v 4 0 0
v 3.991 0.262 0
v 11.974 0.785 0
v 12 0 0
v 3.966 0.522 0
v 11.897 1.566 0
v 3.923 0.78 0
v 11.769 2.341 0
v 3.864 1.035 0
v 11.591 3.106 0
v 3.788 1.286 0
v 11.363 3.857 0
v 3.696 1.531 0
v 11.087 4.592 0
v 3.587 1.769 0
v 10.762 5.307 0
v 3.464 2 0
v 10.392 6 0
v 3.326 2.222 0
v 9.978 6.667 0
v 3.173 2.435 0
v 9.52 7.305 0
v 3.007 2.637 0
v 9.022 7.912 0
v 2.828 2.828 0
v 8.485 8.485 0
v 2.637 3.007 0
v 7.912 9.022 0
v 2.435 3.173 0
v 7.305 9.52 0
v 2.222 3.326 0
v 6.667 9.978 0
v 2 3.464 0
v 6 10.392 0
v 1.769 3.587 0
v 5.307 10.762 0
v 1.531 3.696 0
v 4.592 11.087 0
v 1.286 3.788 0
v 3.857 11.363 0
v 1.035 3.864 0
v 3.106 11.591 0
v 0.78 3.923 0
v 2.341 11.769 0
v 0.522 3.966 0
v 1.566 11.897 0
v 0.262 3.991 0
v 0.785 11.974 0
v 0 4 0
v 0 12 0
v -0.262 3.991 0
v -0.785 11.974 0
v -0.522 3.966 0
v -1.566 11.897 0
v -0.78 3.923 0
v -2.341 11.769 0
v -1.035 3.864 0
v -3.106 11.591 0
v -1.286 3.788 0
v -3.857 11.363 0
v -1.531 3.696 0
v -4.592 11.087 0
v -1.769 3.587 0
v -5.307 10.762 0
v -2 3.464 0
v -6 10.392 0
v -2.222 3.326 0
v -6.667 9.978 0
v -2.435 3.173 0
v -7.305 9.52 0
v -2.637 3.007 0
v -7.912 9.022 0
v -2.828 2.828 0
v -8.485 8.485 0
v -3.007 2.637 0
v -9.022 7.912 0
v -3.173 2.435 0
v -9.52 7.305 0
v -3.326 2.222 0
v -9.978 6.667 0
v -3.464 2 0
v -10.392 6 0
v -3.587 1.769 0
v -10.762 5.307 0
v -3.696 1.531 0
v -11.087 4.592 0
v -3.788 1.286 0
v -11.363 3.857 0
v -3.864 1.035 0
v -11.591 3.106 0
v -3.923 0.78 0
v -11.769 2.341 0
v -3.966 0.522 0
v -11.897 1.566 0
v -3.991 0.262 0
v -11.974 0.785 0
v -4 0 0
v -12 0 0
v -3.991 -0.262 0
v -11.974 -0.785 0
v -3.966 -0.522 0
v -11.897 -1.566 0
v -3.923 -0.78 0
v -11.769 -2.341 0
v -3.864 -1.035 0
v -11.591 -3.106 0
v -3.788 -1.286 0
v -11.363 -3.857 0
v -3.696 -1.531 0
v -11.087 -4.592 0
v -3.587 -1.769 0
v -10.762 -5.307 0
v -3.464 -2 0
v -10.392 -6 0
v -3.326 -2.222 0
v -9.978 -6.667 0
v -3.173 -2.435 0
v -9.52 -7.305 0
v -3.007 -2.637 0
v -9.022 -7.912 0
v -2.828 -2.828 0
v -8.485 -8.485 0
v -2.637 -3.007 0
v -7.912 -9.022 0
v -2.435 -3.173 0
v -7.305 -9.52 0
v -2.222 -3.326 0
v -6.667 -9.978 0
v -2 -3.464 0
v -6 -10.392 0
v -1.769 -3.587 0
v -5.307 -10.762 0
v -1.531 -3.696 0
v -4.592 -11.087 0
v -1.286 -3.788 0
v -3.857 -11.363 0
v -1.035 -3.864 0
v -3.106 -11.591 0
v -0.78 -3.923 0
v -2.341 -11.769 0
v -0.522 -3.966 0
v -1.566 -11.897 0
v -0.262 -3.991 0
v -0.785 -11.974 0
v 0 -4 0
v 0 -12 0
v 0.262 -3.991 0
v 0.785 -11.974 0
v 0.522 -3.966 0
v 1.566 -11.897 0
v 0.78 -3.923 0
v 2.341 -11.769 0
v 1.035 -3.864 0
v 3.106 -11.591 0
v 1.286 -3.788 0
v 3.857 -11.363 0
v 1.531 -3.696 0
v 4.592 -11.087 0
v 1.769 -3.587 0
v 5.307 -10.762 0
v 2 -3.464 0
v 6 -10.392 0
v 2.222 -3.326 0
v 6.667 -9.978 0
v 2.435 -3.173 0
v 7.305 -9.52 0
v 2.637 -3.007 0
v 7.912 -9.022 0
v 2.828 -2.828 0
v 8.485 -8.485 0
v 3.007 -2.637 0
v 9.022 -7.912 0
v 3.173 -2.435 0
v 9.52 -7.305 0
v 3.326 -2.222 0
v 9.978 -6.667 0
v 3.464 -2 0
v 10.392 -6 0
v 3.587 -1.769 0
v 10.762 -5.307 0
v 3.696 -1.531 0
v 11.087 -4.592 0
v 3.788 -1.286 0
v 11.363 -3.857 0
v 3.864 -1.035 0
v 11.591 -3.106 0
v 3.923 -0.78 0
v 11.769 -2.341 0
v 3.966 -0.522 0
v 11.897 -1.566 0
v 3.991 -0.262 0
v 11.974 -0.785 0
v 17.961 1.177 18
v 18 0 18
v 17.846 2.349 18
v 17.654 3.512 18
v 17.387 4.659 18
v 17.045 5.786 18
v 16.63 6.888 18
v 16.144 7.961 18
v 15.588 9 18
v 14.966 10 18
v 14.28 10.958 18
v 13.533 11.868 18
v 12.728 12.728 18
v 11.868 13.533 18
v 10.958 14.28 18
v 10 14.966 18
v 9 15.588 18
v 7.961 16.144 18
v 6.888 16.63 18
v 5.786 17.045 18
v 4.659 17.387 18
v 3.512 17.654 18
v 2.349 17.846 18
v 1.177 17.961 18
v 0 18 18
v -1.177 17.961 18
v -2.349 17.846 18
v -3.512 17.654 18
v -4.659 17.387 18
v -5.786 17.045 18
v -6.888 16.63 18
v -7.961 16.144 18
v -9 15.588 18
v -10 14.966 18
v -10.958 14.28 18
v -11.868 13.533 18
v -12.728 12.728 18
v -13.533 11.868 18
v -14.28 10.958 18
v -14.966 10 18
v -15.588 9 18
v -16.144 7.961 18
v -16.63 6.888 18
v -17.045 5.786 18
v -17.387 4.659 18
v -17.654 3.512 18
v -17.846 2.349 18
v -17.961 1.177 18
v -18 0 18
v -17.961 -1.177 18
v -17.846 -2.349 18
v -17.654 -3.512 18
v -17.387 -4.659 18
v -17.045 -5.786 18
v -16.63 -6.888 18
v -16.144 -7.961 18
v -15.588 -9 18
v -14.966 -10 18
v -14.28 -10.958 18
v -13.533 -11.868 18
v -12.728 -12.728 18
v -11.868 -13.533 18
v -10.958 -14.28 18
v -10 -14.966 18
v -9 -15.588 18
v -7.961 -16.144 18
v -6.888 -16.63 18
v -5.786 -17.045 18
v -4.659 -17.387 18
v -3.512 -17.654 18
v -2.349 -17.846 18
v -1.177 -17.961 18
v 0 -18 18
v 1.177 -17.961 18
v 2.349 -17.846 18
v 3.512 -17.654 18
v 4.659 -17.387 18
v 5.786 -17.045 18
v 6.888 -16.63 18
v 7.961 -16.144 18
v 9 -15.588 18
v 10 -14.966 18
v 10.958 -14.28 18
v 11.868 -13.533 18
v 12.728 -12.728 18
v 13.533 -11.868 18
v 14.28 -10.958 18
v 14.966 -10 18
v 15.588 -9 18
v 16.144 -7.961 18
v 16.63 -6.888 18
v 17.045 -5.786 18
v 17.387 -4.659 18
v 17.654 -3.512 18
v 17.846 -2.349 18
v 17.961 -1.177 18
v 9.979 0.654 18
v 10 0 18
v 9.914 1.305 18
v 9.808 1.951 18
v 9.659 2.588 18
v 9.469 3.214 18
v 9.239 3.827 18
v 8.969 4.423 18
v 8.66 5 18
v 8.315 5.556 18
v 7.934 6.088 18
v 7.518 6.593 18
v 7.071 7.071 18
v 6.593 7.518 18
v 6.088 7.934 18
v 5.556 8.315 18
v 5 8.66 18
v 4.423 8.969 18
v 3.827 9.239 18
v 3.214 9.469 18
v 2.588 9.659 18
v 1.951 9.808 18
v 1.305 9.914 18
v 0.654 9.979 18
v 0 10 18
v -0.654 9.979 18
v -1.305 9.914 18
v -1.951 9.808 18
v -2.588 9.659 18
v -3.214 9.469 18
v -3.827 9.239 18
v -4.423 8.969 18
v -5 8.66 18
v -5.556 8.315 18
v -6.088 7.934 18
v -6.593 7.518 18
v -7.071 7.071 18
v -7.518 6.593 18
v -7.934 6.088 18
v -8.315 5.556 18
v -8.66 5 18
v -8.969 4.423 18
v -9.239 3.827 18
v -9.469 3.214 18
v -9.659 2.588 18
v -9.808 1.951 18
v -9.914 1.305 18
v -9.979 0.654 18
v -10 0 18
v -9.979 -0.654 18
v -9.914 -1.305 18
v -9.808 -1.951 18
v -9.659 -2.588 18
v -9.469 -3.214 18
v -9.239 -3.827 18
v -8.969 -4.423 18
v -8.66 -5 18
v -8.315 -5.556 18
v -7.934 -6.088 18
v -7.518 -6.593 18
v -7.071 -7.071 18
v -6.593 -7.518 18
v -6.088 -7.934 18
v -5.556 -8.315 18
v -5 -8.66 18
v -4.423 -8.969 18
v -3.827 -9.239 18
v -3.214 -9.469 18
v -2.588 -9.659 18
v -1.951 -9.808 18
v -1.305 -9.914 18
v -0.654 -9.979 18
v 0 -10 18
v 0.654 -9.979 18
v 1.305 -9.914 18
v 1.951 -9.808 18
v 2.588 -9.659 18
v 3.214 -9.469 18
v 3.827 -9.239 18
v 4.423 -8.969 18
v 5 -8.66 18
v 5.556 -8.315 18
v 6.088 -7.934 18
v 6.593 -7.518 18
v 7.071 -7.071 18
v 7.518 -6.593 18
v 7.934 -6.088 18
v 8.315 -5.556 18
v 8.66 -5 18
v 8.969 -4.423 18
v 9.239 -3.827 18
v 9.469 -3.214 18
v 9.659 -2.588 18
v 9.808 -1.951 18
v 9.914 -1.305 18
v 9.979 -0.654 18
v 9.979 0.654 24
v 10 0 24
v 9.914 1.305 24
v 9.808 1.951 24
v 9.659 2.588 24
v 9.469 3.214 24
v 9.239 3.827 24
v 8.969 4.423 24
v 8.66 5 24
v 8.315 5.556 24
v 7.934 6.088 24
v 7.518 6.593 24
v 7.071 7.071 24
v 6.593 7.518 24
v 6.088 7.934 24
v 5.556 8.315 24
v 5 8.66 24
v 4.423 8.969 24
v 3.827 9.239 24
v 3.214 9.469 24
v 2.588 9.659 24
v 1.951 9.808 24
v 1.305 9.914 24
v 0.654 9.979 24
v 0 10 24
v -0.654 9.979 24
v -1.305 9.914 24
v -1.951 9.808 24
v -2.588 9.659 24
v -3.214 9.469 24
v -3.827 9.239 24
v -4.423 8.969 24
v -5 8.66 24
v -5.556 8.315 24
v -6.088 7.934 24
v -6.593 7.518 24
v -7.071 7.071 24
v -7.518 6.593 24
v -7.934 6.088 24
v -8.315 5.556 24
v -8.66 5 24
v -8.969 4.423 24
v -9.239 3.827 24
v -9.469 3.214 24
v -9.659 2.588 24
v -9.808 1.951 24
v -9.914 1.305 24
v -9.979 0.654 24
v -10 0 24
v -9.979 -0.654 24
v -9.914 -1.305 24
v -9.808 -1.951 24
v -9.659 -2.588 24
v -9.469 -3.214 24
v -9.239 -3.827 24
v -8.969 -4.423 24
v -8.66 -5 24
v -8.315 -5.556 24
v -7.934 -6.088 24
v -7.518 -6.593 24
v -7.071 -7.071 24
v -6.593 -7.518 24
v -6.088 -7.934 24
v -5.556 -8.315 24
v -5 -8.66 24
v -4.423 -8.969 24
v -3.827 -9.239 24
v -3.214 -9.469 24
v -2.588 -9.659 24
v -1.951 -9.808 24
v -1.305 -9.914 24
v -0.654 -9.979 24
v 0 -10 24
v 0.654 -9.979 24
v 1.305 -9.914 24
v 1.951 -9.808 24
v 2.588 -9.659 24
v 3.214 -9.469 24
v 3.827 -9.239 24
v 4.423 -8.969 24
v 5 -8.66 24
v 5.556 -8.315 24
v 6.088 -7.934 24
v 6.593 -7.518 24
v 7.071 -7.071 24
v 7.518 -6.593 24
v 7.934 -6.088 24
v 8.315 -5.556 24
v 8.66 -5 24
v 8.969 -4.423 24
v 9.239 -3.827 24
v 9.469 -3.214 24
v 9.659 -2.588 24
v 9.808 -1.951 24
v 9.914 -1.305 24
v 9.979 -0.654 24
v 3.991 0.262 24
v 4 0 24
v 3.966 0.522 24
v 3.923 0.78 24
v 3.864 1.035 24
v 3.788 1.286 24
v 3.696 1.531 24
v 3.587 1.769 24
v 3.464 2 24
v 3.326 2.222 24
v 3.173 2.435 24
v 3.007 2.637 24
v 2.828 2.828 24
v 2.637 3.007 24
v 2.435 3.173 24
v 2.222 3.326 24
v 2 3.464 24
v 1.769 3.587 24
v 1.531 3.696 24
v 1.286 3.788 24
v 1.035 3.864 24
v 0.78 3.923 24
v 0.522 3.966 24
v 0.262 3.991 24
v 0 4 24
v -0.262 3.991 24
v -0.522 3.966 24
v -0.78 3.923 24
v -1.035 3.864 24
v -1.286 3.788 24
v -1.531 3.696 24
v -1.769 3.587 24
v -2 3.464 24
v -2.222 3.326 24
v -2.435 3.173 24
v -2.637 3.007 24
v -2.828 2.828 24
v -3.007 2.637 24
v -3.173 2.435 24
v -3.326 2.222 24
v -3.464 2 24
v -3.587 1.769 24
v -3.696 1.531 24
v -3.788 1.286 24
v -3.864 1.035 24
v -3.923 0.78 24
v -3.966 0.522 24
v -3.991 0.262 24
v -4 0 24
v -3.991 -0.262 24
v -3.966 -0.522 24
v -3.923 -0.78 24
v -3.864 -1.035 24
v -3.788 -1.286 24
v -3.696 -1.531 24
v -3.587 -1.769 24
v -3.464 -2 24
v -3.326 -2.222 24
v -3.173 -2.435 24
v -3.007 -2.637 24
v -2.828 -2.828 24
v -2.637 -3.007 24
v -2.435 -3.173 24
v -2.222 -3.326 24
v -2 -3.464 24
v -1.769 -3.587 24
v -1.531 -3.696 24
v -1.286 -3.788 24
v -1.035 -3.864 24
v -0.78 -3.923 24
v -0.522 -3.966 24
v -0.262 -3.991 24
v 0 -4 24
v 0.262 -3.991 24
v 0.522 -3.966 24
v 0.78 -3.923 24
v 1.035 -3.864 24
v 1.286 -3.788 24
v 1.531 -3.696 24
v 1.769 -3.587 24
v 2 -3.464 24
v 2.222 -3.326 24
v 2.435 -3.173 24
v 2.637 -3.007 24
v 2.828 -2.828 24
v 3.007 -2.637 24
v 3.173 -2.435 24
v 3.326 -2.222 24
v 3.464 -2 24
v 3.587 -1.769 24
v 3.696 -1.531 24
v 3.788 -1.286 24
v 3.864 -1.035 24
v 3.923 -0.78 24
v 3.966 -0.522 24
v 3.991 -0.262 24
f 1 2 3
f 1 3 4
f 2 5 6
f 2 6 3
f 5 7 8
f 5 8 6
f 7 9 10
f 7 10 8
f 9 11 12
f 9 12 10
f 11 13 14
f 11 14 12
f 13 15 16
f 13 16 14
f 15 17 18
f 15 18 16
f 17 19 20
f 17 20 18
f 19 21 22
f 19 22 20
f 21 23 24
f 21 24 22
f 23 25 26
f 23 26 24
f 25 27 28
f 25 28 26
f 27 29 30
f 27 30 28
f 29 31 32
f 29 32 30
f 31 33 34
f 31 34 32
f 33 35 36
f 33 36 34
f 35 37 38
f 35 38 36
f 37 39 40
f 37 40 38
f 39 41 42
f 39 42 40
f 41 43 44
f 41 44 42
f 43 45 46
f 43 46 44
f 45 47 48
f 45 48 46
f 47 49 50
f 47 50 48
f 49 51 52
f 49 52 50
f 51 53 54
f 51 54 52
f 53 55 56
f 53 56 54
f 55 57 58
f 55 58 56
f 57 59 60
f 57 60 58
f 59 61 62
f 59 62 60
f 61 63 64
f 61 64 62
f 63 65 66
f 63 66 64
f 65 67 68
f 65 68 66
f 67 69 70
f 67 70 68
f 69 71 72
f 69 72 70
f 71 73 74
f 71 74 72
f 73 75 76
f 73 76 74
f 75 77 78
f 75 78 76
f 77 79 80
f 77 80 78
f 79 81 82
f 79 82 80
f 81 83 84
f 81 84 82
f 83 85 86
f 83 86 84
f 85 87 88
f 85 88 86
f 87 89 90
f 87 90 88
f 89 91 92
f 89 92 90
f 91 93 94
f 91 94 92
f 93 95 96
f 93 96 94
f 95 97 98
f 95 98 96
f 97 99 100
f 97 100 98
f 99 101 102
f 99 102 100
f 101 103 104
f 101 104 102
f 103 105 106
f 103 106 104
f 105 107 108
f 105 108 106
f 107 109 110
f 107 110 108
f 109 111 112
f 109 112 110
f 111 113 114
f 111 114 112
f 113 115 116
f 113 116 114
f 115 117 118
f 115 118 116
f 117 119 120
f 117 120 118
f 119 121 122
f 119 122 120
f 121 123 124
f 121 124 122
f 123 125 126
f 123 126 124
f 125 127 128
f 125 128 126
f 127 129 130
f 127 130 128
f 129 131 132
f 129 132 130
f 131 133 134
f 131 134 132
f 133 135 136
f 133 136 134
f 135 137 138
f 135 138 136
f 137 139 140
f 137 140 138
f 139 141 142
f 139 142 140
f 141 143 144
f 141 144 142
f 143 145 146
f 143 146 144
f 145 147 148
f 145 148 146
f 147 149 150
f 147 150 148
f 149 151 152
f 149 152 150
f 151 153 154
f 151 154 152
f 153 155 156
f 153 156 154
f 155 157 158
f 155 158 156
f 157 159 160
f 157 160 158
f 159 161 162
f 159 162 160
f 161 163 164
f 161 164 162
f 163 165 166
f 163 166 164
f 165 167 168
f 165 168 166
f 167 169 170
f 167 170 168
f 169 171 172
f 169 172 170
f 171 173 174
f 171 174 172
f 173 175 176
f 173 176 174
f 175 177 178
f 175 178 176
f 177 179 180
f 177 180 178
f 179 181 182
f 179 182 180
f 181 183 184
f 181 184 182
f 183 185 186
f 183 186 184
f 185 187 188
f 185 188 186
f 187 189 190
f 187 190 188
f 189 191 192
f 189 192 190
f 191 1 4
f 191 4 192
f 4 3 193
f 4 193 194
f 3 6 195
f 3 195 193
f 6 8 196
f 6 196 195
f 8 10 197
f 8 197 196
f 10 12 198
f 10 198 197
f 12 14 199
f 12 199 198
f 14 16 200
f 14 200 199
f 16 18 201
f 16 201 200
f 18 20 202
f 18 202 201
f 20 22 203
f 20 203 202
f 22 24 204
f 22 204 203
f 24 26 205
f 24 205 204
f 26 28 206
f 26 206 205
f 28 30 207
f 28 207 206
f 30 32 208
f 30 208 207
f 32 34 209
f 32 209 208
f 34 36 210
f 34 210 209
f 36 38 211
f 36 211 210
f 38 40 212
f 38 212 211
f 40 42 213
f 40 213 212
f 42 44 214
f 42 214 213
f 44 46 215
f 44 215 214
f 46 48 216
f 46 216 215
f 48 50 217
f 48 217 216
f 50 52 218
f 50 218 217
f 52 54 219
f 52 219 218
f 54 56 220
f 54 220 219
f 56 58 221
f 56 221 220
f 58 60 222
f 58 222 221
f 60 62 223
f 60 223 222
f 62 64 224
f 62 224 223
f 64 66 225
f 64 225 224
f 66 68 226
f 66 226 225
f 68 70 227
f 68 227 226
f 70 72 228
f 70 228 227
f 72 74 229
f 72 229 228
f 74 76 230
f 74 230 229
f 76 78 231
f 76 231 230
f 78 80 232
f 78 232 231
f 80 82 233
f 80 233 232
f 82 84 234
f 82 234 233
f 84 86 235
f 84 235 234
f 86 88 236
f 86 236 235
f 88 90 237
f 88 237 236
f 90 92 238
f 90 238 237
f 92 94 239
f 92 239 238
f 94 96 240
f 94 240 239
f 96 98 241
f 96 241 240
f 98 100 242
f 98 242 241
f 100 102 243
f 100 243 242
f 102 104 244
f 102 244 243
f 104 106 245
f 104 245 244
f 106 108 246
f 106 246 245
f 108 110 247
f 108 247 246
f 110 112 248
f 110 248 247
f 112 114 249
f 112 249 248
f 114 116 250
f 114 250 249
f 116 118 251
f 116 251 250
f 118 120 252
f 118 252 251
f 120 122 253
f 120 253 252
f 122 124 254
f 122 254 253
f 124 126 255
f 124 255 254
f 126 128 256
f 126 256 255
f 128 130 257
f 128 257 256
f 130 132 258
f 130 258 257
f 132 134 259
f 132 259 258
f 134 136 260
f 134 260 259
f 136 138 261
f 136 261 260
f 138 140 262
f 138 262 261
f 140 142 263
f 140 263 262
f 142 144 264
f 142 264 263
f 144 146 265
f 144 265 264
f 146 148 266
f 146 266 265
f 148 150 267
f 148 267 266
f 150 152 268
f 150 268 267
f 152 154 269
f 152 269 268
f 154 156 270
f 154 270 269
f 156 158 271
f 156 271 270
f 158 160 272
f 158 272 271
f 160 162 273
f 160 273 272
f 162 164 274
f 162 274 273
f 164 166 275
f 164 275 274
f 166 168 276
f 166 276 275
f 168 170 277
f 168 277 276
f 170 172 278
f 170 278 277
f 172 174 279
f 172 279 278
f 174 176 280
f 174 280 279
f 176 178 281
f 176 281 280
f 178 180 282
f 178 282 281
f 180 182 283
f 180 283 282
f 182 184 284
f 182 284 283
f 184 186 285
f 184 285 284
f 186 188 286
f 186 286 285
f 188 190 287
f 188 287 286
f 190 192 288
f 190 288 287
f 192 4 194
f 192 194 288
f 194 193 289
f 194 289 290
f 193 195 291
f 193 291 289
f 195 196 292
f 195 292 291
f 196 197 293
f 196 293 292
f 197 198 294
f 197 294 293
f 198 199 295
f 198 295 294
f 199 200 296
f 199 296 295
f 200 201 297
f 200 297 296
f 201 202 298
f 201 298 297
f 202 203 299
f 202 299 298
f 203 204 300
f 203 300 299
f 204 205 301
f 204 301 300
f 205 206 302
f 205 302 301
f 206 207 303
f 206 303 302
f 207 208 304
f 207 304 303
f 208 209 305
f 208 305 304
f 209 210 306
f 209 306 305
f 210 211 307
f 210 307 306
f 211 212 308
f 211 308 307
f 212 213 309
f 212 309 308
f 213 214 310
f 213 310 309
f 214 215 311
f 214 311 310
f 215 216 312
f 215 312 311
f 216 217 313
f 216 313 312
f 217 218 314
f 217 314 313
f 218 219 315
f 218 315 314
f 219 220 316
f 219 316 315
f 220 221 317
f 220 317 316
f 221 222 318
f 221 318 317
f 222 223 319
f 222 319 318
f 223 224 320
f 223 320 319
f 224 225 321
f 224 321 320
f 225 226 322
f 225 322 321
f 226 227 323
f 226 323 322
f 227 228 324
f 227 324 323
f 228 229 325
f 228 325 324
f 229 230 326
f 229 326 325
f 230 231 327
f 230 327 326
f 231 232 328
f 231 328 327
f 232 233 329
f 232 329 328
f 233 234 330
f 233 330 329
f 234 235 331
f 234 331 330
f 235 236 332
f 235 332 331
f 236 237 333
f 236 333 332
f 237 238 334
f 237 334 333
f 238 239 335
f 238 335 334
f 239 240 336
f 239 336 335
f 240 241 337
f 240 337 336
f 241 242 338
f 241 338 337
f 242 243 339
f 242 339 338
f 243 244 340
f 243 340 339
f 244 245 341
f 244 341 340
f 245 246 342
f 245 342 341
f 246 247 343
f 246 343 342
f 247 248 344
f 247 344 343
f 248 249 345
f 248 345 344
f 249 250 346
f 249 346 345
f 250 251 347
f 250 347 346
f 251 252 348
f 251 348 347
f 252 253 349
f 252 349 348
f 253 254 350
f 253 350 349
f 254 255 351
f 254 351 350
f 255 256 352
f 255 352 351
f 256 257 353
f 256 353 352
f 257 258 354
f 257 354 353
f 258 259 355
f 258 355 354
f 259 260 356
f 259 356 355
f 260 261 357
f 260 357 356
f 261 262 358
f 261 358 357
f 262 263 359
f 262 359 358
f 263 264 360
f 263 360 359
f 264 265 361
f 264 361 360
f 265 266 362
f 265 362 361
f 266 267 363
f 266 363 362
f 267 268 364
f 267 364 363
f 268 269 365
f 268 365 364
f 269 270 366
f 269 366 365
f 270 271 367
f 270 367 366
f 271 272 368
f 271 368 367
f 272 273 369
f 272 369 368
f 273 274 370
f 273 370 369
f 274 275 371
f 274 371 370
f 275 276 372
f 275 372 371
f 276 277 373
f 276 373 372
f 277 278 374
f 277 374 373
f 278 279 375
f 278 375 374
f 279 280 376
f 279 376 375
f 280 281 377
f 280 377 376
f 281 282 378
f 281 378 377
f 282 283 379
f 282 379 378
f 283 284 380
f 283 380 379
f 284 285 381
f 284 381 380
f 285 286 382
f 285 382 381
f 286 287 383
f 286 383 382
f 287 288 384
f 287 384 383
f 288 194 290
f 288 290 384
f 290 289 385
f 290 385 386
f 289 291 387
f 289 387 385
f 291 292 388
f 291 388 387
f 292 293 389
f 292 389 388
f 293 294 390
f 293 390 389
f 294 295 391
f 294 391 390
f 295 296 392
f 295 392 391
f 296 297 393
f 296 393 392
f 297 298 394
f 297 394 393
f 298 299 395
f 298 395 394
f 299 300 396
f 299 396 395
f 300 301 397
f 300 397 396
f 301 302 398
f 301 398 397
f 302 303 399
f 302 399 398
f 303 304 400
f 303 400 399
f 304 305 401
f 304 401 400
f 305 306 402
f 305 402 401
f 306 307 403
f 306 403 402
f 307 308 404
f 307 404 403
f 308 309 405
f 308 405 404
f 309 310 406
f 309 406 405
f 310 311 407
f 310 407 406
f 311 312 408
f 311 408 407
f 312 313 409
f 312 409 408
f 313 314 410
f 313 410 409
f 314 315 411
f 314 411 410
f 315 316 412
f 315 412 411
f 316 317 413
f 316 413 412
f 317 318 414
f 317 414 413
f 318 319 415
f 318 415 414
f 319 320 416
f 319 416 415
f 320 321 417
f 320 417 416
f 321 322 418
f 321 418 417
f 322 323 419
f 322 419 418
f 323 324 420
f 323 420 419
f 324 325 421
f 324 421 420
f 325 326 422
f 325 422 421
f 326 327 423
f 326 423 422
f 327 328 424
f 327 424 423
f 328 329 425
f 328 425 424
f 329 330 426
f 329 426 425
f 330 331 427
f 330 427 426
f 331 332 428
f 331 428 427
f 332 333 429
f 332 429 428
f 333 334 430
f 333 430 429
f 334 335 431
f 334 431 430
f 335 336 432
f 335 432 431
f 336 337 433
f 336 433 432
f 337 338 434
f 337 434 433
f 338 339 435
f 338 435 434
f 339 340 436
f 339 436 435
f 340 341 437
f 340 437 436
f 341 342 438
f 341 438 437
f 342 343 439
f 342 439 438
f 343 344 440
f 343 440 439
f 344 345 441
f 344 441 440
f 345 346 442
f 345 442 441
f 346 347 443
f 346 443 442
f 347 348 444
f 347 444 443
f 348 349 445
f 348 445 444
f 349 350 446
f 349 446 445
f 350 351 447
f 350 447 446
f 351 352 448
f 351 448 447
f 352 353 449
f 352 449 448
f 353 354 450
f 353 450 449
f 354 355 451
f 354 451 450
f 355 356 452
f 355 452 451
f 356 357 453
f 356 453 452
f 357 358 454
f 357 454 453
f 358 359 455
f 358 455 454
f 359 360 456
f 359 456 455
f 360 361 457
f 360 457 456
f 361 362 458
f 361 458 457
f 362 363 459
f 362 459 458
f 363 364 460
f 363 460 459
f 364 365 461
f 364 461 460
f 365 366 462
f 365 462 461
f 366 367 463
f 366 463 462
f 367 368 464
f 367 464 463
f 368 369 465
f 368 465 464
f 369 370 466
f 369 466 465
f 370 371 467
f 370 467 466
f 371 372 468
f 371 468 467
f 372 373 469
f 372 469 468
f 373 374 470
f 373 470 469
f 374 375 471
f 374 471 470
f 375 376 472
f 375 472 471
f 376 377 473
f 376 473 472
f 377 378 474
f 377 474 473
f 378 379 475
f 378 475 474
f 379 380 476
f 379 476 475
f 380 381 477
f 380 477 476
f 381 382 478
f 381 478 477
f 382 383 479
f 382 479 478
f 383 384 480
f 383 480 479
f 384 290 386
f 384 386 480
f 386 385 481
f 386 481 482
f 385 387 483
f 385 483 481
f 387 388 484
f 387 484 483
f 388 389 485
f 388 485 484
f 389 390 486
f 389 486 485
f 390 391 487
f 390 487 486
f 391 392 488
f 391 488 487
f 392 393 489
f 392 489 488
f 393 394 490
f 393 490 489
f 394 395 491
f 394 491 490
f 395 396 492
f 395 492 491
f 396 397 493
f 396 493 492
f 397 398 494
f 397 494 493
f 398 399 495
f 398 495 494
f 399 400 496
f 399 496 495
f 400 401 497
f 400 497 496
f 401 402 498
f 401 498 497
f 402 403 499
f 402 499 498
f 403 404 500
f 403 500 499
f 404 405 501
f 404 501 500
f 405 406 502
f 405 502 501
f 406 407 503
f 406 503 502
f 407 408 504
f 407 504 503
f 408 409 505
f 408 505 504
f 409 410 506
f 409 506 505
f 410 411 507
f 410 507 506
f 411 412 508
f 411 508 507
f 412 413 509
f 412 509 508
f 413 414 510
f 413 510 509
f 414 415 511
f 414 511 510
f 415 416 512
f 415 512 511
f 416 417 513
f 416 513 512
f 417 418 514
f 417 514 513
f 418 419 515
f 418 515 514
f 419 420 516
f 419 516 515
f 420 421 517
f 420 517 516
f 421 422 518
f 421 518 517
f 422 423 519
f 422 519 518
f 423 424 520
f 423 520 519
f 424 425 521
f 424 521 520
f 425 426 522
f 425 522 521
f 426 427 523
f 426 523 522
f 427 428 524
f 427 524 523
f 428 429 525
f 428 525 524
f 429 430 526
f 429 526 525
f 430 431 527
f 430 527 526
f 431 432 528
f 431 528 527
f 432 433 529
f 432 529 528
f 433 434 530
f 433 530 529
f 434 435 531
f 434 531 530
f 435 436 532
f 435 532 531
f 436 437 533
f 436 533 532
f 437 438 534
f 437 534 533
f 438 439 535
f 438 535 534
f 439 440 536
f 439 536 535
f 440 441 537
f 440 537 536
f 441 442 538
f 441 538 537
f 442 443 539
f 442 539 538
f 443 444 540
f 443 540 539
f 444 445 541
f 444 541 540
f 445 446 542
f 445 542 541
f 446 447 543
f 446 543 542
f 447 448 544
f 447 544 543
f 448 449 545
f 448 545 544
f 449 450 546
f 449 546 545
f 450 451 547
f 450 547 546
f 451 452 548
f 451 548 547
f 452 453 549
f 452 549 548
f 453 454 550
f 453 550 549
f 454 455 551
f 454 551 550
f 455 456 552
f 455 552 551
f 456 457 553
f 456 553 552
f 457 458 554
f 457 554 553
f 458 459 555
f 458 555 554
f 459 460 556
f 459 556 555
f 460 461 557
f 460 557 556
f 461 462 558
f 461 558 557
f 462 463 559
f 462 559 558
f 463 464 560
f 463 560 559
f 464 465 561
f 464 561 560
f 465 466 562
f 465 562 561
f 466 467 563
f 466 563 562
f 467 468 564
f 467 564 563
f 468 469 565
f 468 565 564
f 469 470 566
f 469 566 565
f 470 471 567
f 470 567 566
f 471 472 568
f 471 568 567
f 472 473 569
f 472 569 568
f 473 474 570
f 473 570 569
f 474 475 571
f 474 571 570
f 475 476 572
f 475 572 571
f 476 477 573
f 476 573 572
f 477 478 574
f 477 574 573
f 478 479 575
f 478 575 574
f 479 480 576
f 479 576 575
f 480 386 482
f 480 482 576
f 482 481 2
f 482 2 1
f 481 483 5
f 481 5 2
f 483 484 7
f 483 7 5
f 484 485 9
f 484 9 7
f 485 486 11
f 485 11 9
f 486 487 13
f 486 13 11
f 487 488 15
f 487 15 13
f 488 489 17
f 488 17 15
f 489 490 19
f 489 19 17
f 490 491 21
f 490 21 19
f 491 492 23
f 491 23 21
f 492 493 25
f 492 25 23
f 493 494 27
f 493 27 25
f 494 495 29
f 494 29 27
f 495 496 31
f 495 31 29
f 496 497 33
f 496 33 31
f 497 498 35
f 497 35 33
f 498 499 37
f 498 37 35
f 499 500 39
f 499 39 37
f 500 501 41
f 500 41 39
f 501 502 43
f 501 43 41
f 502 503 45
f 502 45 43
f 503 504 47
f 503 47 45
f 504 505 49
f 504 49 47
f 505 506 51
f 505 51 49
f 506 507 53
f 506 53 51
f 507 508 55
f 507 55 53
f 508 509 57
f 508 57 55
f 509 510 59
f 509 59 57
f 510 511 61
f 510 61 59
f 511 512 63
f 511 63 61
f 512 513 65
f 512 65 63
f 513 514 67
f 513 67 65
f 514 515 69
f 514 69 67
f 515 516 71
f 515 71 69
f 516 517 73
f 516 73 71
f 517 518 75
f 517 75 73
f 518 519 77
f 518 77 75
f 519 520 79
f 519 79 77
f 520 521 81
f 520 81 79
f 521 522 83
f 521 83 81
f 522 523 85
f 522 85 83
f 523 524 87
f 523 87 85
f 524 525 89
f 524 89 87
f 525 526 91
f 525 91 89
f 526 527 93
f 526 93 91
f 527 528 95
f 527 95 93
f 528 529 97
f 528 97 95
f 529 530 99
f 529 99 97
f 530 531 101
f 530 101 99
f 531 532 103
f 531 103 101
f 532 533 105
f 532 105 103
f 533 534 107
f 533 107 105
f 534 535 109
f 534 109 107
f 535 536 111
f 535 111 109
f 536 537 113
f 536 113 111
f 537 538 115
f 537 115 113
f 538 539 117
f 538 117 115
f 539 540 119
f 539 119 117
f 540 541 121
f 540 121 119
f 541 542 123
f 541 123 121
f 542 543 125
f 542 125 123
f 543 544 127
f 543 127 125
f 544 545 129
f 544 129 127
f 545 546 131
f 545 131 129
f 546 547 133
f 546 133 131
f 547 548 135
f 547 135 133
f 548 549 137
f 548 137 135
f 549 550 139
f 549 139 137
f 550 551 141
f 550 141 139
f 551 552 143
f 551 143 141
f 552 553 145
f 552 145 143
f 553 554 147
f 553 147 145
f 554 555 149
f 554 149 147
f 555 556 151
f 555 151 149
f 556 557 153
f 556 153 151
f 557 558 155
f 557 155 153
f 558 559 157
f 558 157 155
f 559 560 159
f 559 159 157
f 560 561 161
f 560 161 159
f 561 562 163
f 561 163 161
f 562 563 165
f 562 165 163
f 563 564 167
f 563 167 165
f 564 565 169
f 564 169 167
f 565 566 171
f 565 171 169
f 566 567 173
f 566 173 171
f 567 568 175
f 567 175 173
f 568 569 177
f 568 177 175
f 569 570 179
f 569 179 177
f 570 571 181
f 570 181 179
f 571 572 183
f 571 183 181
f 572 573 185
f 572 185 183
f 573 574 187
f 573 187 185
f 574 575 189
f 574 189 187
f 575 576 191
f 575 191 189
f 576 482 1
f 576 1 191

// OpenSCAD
// Original MechIntel educational model. CC0-1.0. Units: mm.
// Not a standardized or load-rated component.
$fn=96;
// Section points: [radius, height], mm. Edit to change the profile.
section=[[4, 0], [12, 0], [18, 18], [10, 18], [10, 24], [4, 24]];
rotate_extrude($fn=96) polygon(points=section);
